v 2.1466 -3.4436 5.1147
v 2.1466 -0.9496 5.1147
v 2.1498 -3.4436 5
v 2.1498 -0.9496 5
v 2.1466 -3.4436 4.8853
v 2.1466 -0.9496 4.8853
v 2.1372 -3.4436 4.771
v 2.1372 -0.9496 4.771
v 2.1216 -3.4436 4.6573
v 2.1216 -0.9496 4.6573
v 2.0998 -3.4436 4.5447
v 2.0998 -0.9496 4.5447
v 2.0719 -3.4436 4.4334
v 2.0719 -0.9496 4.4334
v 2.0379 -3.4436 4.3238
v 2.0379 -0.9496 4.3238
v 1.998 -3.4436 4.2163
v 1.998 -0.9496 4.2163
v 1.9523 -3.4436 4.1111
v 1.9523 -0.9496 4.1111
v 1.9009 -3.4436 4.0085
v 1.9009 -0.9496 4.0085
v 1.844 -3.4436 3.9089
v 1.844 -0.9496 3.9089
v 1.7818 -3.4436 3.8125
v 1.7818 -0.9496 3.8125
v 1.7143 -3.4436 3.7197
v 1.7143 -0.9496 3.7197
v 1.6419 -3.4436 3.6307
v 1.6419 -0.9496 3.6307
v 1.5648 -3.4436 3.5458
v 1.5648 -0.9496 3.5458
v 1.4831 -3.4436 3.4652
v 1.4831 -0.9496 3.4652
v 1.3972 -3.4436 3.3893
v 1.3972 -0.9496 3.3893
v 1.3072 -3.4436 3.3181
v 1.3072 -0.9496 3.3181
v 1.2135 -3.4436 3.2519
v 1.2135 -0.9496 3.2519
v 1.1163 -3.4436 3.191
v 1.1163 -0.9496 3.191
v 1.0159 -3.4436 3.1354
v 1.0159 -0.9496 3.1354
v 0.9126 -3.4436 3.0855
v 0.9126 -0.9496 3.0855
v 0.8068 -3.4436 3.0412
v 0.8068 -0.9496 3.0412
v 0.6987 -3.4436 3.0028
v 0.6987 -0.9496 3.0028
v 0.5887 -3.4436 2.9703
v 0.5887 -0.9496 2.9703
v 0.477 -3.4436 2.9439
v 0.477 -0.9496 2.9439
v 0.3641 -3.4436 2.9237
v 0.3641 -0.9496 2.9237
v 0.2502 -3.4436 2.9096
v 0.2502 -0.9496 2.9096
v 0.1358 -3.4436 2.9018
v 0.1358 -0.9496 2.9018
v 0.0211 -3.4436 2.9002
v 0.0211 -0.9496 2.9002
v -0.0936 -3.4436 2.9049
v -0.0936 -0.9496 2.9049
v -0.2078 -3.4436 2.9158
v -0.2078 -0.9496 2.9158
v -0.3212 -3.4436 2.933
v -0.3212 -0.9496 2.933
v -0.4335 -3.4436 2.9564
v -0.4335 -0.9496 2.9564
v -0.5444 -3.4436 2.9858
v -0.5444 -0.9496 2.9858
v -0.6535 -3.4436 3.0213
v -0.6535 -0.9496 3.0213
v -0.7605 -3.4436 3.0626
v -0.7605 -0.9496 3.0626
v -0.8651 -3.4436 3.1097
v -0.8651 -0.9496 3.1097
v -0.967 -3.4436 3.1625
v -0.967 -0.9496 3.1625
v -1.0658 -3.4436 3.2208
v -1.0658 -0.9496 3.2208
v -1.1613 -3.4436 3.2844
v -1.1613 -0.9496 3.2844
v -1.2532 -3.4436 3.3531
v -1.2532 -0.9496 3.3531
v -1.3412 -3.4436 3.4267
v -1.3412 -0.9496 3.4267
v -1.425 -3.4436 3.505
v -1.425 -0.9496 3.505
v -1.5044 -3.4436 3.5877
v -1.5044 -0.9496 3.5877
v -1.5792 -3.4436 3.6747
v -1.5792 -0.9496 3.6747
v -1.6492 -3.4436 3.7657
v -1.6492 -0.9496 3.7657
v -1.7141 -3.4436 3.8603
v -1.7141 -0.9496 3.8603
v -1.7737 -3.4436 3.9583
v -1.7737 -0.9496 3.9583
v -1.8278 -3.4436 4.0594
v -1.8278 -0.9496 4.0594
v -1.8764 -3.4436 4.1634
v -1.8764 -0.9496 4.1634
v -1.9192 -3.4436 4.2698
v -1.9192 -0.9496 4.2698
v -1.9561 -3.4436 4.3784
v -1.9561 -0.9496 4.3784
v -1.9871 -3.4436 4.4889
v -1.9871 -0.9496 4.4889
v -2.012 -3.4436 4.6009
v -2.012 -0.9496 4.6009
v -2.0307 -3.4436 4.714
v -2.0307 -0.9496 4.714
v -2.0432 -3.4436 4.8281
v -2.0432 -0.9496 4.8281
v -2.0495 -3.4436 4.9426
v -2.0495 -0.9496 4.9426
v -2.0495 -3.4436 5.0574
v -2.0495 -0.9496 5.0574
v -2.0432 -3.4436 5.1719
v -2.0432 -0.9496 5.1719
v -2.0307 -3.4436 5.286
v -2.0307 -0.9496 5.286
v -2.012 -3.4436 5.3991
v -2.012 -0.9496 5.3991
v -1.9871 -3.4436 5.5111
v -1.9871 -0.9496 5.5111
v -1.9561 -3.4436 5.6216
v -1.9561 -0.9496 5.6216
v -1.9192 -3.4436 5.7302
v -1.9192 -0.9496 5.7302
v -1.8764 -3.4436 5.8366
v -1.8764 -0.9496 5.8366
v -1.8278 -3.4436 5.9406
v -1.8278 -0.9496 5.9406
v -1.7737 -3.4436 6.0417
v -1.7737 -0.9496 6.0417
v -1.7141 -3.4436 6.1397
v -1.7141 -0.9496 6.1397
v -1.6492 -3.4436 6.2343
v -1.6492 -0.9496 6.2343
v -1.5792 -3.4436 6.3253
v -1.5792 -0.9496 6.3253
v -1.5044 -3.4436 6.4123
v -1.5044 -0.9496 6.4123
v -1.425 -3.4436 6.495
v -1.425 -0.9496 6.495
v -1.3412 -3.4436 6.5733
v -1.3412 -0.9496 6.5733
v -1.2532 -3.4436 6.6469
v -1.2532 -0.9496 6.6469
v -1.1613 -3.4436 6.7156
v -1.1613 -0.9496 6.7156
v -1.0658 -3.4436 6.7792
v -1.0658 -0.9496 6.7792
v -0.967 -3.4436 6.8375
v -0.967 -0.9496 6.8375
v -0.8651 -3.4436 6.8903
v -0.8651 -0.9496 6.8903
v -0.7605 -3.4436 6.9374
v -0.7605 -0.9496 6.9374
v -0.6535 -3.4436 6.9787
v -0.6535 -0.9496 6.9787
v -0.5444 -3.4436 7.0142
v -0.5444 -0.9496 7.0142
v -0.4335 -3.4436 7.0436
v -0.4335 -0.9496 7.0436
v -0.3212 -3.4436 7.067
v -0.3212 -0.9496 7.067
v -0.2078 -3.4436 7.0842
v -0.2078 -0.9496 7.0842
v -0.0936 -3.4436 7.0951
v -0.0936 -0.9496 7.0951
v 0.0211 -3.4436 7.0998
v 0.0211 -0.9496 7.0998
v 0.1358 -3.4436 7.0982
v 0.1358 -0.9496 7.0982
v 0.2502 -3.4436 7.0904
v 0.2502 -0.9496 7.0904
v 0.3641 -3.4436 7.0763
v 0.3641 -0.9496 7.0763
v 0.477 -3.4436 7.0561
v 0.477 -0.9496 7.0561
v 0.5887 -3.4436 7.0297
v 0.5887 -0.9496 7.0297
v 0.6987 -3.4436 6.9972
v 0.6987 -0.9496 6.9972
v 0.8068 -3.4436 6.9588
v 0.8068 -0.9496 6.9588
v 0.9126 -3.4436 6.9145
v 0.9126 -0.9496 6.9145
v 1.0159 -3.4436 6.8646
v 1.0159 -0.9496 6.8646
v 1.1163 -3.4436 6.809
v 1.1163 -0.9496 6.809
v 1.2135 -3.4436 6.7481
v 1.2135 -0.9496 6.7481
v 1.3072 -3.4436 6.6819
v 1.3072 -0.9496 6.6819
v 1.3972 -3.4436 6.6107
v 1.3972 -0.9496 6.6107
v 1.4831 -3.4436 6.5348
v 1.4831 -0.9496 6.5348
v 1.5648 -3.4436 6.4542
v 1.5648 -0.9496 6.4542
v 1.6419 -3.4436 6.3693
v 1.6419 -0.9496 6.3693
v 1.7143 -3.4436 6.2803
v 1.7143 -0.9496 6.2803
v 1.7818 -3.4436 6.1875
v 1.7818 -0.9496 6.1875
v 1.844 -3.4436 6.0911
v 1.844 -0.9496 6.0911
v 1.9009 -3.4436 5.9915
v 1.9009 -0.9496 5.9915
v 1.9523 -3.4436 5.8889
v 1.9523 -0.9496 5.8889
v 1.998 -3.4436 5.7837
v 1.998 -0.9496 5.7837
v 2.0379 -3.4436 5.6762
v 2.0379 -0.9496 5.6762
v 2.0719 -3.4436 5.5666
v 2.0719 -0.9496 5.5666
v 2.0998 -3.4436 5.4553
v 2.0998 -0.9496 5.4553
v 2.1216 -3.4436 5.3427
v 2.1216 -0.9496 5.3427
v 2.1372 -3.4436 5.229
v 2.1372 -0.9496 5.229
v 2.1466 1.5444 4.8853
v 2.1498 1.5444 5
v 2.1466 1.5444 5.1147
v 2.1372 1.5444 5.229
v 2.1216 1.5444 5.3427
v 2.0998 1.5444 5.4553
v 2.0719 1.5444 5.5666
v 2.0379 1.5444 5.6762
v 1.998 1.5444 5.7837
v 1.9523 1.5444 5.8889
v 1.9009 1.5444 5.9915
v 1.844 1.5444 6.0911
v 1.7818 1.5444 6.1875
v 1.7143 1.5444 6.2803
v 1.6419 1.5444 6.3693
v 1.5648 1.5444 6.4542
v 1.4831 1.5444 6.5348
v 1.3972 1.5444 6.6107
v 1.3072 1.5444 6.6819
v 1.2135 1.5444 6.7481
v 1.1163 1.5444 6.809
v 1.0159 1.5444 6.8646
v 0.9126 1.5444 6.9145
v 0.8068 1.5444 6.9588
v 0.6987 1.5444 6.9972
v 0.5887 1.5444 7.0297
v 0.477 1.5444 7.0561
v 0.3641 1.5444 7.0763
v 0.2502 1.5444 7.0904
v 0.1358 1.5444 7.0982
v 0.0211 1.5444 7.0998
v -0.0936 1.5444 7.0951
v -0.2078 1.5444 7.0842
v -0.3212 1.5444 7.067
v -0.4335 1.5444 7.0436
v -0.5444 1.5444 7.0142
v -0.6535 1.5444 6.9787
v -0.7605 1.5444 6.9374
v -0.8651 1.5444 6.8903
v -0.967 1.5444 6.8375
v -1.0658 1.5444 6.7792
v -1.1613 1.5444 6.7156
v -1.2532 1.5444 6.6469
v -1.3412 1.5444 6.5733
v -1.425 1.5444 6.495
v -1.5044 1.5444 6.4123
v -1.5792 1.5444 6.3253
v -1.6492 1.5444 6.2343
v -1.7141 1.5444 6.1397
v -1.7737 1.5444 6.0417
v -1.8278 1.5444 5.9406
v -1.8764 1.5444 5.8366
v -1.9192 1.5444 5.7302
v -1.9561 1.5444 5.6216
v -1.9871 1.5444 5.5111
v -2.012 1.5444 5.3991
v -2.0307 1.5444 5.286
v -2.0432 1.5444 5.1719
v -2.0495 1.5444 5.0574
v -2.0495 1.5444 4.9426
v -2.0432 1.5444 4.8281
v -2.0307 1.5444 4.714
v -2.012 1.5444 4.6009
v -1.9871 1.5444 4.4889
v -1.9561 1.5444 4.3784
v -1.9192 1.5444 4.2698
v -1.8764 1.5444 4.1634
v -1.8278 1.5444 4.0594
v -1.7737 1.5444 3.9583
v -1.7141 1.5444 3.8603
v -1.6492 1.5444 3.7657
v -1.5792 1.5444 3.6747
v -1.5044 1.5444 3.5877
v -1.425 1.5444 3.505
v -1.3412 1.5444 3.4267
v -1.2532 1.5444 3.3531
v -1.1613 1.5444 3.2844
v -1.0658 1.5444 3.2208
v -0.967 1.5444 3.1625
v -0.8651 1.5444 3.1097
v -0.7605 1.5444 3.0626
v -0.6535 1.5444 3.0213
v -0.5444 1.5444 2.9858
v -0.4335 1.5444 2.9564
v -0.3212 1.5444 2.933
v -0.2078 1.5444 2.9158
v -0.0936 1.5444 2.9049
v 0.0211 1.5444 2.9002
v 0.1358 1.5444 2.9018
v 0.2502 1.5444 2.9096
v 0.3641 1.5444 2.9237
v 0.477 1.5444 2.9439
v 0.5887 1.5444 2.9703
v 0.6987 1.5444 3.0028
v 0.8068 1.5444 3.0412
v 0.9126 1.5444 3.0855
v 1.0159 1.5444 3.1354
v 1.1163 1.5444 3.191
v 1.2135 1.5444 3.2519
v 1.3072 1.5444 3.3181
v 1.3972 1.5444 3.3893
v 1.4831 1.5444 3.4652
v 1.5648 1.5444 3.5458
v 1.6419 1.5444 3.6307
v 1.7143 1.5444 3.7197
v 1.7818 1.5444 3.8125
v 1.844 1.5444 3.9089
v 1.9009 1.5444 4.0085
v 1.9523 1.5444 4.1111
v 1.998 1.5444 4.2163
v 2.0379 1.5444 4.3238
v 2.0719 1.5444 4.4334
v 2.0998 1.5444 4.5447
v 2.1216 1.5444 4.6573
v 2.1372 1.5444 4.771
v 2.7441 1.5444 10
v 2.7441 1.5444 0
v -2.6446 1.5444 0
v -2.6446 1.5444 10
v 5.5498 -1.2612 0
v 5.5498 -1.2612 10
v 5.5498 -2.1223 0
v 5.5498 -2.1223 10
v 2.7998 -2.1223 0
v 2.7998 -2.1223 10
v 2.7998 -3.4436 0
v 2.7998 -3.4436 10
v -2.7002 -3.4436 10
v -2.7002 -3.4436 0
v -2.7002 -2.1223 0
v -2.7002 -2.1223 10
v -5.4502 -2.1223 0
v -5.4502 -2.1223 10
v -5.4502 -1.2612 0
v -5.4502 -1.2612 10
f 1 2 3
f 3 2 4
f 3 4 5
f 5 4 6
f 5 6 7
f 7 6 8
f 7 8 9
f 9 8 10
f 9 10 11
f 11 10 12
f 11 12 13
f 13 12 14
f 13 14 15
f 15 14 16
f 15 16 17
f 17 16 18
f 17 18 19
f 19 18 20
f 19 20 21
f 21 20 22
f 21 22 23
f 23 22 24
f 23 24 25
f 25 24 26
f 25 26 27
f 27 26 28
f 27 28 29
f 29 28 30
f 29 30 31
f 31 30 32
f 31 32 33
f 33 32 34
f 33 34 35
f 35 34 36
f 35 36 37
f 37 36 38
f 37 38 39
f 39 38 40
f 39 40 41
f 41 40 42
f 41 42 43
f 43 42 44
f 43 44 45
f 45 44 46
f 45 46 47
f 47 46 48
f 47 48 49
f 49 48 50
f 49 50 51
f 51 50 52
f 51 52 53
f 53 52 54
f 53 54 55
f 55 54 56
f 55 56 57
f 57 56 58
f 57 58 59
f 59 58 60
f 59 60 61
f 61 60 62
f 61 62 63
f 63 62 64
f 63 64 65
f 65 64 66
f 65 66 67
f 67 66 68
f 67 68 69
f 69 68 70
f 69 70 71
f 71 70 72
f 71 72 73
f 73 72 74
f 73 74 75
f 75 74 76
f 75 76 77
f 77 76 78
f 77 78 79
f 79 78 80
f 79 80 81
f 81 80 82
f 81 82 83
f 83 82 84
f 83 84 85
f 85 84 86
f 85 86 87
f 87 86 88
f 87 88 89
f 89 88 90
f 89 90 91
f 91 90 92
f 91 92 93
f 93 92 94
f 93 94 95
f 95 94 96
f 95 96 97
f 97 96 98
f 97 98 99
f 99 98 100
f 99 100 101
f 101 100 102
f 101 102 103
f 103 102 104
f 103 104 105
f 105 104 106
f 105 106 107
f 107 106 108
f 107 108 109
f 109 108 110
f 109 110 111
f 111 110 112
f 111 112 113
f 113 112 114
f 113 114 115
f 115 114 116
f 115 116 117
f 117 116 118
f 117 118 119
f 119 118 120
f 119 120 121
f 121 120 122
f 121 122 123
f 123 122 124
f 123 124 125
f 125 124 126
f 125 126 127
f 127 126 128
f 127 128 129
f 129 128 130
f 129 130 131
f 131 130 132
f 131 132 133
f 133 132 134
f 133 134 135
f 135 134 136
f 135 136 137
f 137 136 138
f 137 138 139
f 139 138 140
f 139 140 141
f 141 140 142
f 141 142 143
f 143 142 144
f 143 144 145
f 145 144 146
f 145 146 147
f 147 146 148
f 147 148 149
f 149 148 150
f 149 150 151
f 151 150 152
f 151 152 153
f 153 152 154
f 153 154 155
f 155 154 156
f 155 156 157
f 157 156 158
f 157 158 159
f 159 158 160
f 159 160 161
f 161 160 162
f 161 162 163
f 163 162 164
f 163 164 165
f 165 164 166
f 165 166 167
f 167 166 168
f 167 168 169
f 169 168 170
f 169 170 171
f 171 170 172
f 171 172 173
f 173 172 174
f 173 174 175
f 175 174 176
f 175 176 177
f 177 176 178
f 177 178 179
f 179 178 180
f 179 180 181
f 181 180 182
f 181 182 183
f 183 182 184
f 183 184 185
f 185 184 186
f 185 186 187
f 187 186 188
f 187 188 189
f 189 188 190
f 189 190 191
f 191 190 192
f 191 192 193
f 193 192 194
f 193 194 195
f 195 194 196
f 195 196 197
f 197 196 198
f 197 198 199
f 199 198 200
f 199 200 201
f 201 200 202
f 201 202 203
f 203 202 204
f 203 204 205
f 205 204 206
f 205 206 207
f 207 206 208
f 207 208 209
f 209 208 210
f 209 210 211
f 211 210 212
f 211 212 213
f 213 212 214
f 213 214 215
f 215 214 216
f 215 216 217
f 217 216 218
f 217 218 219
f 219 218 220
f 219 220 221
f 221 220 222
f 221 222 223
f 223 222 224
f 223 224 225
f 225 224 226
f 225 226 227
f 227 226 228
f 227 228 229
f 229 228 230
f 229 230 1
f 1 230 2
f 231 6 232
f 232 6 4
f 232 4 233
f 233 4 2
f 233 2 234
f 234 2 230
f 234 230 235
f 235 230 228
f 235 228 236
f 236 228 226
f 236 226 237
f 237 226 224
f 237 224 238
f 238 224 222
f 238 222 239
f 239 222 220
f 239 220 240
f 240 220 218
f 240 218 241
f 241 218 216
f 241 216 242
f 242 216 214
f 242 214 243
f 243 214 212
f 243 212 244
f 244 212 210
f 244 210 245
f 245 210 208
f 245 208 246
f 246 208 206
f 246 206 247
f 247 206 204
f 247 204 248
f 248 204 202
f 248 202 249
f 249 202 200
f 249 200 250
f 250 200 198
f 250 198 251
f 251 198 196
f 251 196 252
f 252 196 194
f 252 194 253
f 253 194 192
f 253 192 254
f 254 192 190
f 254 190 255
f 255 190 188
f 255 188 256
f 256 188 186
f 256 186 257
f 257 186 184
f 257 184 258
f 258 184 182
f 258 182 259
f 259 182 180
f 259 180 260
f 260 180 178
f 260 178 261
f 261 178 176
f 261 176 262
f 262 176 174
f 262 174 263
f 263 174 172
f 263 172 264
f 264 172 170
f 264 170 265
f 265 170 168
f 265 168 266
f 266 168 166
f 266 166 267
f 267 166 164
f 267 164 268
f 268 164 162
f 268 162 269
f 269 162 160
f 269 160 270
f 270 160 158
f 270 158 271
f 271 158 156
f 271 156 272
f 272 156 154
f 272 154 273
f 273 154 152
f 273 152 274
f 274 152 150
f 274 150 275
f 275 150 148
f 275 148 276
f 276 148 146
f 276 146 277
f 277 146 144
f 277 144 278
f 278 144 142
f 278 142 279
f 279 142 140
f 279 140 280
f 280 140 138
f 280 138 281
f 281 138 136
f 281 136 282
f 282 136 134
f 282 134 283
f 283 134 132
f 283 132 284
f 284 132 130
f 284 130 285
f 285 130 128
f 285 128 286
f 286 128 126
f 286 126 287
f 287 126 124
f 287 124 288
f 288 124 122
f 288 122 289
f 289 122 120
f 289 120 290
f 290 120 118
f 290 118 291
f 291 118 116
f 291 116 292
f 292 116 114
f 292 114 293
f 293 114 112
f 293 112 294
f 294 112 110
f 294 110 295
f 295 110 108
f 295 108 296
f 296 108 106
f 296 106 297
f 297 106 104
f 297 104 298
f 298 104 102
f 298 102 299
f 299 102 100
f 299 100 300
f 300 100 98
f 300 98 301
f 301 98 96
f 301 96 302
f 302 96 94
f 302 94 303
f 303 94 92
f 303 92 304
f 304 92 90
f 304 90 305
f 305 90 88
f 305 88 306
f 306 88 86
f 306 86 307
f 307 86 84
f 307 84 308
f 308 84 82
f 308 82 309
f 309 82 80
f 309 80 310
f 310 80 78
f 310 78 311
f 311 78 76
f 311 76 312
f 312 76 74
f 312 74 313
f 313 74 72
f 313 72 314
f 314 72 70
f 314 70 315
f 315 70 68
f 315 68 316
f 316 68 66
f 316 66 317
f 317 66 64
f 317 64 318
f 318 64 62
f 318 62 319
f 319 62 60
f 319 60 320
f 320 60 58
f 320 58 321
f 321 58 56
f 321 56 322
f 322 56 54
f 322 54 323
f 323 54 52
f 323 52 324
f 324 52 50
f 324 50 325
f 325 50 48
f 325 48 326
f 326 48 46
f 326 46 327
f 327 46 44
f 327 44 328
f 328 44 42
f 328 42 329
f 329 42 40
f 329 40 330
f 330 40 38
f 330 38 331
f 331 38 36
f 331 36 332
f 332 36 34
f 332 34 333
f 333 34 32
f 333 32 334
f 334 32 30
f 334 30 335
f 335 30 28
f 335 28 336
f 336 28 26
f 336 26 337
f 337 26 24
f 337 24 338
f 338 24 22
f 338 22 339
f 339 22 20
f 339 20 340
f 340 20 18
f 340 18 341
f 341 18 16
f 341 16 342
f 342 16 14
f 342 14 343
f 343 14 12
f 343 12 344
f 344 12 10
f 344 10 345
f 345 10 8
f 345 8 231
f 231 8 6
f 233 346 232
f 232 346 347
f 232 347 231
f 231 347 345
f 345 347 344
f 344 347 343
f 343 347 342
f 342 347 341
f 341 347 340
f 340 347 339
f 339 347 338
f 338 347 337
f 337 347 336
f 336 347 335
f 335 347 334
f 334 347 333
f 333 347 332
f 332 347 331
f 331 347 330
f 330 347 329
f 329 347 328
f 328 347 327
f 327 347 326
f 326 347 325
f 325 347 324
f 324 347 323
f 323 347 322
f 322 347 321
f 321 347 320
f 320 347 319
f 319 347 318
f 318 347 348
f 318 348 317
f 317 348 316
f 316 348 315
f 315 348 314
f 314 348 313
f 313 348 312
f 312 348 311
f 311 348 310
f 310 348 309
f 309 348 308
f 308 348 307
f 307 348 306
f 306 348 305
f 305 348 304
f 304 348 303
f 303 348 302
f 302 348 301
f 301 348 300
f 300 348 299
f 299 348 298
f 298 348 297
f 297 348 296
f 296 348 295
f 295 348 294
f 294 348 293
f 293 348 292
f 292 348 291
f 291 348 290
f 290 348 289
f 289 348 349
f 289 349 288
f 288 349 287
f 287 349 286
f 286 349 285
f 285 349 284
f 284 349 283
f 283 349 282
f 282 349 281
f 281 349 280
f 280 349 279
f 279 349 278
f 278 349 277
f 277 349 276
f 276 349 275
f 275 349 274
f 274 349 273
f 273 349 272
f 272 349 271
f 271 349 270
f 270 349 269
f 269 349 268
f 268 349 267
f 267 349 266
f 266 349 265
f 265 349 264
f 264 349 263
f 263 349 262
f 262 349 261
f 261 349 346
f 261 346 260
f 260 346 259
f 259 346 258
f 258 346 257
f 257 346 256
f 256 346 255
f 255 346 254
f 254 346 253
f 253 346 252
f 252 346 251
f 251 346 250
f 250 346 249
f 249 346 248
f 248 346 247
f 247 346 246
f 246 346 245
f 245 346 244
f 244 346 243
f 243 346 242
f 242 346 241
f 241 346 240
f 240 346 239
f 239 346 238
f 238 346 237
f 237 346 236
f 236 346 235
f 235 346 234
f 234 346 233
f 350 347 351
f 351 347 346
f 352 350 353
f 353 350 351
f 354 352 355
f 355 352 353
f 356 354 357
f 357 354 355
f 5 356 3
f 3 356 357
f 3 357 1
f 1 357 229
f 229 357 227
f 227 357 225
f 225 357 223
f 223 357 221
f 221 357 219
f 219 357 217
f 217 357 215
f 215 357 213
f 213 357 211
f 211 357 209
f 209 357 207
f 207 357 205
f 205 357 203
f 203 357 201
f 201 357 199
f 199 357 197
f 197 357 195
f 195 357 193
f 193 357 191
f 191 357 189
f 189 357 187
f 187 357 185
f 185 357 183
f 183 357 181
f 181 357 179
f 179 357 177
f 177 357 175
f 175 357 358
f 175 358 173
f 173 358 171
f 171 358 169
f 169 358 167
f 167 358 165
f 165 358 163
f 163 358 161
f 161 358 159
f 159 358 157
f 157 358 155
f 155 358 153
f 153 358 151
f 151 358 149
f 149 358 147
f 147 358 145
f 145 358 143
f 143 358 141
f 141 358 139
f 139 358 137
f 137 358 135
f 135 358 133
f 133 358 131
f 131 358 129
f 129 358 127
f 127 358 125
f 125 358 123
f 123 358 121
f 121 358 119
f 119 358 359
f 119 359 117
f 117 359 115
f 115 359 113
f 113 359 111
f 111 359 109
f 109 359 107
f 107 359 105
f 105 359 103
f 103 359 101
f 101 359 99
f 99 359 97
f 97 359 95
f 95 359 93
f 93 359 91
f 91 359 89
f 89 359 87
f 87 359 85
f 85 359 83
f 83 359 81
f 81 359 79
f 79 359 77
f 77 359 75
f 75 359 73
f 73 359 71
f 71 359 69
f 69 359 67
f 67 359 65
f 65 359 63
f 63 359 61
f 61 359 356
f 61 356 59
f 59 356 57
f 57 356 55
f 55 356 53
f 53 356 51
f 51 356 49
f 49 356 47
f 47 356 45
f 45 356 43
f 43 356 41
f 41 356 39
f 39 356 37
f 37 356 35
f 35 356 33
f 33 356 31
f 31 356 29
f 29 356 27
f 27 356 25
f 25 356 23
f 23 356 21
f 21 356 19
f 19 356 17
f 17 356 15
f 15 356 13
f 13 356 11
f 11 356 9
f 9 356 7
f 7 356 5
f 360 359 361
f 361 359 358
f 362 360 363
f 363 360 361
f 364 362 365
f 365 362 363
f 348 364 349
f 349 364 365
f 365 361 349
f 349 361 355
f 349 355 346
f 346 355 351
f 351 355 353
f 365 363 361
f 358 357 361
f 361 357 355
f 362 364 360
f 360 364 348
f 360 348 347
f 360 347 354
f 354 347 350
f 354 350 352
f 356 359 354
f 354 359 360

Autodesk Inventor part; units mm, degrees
ref_plane "YZ Plane" through (0, 0, 0) normal (1, 0, 0) x (0, 1, 0)
ref_plane "XZ Plane" through (0, 0, 0) normal (0, 1, 0) x (-1, 0, 0)
ref_plane "XY Plane" through (0, 0, 0) normal (0, 0, 1) x (1, 0, 0)
sketch "Skizze1" plane through (0, 0, 0) normal (0, 0, 1) x (1, 0, 0)
  line L0 (-2.7002, -2.1223) -> (-2.7002, -3.4436)
  line L1 (-5.4502, -2.1223) -> (-2.7002, -2.1223)
  line L2 (-5.4502, -1.2612) -> (-5.4502, -2.1223)
  line L3 (-2.6446, 1.5444) -> (-5.4502, -1.2612)
  line L4 (0.3248, 1.5444) -> (-2.6446, 1.5444)
  line L5 (2.7441, 1.5444) -> (0.3248, 1.5444)
  line L6 (5.5498, -1.2612) -> (2.7441, 1.5444)
  line L7 (5.5498, -2.1223) -> (5.5498, -1.2612)
  line L8 (2.7998, -2.1223) -> (5.5498, -2.1223)
  line L9 (2.7998, -3.4436) -> (2.7998, -2.1223)
  line L10 (-2.7002, -3.4436) -> (2.7998, -3.4436)
  point P0 (0, 0)
  dimension "d0" = 11
  dimension "d1" = 1.5444
extrude "Extrusion1" add sketch "Skizze1" along normal blind 10
sketch "Skizze2" plane through (-2.6446, 1.5444, 0) normal (0, 1, 0) x (1, 0, 0)
  line L0 (5.3888, 0) -> (0, 0) projected
  line L1 (0, 0) -> (0, -10) projected
  line L2 (5.3888, -10) -> (0, -10) projected
  line L3 (5.3888, 0) -> (5.3888, -10) projected
  circle A0 centre (2.6944, -5) radius 2.1
  point P0 (2.6446, 0)
  dimension "d4" = 4.2
extrude "Extrusion2" cut sketch "Skizze2" against normal up to surface (4.988 mm away) contours A0
properties part number "T-Brick"
